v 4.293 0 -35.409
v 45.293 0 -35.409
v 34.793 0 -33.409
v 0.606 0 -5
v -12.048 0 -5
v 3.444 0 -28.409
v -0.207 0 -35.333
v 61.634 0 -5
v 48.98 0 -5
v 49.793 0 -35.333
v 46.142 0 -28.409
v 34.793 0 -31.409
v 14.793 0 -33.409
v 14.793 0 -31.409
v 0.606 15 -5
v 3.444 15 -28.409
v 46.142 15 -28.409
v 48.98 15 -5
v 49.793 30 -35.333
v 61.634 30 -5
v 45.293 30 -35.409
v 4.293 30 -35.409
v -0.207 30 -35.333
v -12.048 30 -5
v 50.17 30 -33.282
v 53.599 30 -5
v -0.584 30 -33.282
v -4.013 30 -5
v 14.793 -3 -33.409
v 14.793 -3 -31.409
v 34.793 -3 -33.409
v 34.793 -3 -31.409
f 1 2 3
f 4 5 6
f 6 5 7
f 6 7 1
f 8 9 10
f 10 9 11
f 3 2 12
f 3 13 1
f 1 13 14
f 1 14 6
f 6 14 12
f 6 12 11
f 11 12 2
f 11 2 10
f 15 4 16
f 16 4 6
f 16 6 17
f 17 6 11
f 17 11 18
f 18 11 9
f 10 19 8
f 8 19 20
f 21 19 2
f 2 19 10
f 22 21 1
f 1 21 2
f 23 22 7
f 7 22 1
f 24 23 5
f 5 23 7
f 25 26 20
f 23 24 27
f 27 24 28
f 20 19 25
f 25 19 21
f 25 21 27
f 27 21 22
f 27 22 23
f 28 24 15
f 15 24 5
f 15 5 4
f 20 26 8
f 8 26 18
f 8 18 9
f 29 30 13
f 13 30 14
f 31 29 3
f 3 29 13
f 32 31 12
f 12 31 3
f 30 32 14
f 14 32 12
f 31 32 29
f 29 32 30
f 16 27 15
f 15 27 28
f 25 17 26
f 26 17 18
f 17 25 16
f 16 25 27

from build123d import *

# Parameters (mm, degrees)
SALIENTE_EXTRUIR1_DEPTH = 30
CORTAR_EXTRUIR2_DEPTH   = 90
CROQUIS5_W              = 20
CROQUIS5_H              = 2
SALIENTE_EXTRUIR2_DEPTH = 3
CHAFL_N1_SIZE           = 15
CHAFL_N1_SIZE2          = 4.585960222
CHAFL_N2_SIZE           = 15
CHAFL_N2_SIZE2          = 4.585960222
CHAFL_N3_SIZE           = 15
CHAFL_N3_SIZE2          = 4.873795443


with BuildPart() as part:
    # Croquis2 → Saliente-Extruir1 (new body)
    with BuildSketch(Plane(origin=(0, 0, 0), x_dir=(1, 0, 0), z_dir=(0, 1, 0))):
        Polygon((4.293050572, 35.408576274), (-0.206949428, 35.33296049), (-14, 0), (0, 0), (3.44434788, 28.408576274), align=None)
        Polygon((45.293050572, 35.408576274), (4.293050572, 35.408576274), (3.44434788, 28.408576274), (46.141753264, 28.408576274), align=None)
        Polygon((49.793050572, 35.33296049), (45.293050572, 35.408576274), (46.141753264, 28.408576274), (49.586101144, 0), (63.586101144, 0), align=None)
    extrude(amount=SALIENTE_EXTRUIR1_DEPTH)

    # Croquis4 → Cortar-Extruir2 (cut, symmetric)
    with BuildSketch(Plane(origin=(0, 0, 0), x_dir=(0, 0, -1), z_dir=(1, 0, 0))):
        Polygon((0, 0), (5, 0), (5, 30), (-4.90661078, 30), (-4.90661078, 0), align=None)
    extrude(amount=CORTAR_EXTRUIR2_DEPTH, both=True, mode=Mode.SUBTRACT)

    # Croquis5 → Saliente-Extruir2 (add)
    with BuildSketch(Plane(origin=(0, 0, 0), x_dir=(-1, 0, 0), z_dir=(0, -1, 0))):
        with Locations((-24.793050572, 32.408576274)):
            Rectangle(CROQUIS5_W, CROQUIS5_H)
    extrude(amount=SALIENTE_EXTRUIR2_DEPTH)

    # Chaflán1
    chafl_n1_edges = [part.edges().sort_by_distance(p)[0] for p in [
        (2.025282044, 30, -16.704288137),
    ]]
    chafl_n1_side = [part.faces().sort_by_distance(p)[0] for p in [
        (2.025282044, 15, -16.704288137),
    ]]
    chamfer(chafl_n1_edges, length=CHAFL_N1_SIZE, length2=CHAFL_N1_SIZE2, reference=chafl_n1_side[0])

    # Chaflán2
    chafl_n2_edges = [part.edges().sort_by_distance(p)[0] for p in [
        (47.5608191, 30, -16.704288137),
    ]]
    chafl_n2_side = [part.faces().sort_by_distance(p)[0] for p in [
        (47.5608191, 15, -16.704288137),
    ]]
    chamfer(chafl_n2_edges, length=CHAFL_N2_SIZE, length2=CHAFL_N2_SIZE2, reference=chafl_n2_side[0])

    # Chaflán3
    chafl_n3_edges = [part.edges().sort_by_distance(p)[0] for p in [
        (24.793050572, 30, -28.408576274),
    ]]
    chafl_n3_side = [part.faces().sort_by_distance(p)[0] for p in [
        (24.793050572, 15.5132008, -28.408576274),
    ]]
    chamfer(chafl_n3_edges, length=CHAFL_N3_SIZE, length2=CHAFL_N3_SIZE2, reference=chafl_n3_side[0])


solid = part.part
